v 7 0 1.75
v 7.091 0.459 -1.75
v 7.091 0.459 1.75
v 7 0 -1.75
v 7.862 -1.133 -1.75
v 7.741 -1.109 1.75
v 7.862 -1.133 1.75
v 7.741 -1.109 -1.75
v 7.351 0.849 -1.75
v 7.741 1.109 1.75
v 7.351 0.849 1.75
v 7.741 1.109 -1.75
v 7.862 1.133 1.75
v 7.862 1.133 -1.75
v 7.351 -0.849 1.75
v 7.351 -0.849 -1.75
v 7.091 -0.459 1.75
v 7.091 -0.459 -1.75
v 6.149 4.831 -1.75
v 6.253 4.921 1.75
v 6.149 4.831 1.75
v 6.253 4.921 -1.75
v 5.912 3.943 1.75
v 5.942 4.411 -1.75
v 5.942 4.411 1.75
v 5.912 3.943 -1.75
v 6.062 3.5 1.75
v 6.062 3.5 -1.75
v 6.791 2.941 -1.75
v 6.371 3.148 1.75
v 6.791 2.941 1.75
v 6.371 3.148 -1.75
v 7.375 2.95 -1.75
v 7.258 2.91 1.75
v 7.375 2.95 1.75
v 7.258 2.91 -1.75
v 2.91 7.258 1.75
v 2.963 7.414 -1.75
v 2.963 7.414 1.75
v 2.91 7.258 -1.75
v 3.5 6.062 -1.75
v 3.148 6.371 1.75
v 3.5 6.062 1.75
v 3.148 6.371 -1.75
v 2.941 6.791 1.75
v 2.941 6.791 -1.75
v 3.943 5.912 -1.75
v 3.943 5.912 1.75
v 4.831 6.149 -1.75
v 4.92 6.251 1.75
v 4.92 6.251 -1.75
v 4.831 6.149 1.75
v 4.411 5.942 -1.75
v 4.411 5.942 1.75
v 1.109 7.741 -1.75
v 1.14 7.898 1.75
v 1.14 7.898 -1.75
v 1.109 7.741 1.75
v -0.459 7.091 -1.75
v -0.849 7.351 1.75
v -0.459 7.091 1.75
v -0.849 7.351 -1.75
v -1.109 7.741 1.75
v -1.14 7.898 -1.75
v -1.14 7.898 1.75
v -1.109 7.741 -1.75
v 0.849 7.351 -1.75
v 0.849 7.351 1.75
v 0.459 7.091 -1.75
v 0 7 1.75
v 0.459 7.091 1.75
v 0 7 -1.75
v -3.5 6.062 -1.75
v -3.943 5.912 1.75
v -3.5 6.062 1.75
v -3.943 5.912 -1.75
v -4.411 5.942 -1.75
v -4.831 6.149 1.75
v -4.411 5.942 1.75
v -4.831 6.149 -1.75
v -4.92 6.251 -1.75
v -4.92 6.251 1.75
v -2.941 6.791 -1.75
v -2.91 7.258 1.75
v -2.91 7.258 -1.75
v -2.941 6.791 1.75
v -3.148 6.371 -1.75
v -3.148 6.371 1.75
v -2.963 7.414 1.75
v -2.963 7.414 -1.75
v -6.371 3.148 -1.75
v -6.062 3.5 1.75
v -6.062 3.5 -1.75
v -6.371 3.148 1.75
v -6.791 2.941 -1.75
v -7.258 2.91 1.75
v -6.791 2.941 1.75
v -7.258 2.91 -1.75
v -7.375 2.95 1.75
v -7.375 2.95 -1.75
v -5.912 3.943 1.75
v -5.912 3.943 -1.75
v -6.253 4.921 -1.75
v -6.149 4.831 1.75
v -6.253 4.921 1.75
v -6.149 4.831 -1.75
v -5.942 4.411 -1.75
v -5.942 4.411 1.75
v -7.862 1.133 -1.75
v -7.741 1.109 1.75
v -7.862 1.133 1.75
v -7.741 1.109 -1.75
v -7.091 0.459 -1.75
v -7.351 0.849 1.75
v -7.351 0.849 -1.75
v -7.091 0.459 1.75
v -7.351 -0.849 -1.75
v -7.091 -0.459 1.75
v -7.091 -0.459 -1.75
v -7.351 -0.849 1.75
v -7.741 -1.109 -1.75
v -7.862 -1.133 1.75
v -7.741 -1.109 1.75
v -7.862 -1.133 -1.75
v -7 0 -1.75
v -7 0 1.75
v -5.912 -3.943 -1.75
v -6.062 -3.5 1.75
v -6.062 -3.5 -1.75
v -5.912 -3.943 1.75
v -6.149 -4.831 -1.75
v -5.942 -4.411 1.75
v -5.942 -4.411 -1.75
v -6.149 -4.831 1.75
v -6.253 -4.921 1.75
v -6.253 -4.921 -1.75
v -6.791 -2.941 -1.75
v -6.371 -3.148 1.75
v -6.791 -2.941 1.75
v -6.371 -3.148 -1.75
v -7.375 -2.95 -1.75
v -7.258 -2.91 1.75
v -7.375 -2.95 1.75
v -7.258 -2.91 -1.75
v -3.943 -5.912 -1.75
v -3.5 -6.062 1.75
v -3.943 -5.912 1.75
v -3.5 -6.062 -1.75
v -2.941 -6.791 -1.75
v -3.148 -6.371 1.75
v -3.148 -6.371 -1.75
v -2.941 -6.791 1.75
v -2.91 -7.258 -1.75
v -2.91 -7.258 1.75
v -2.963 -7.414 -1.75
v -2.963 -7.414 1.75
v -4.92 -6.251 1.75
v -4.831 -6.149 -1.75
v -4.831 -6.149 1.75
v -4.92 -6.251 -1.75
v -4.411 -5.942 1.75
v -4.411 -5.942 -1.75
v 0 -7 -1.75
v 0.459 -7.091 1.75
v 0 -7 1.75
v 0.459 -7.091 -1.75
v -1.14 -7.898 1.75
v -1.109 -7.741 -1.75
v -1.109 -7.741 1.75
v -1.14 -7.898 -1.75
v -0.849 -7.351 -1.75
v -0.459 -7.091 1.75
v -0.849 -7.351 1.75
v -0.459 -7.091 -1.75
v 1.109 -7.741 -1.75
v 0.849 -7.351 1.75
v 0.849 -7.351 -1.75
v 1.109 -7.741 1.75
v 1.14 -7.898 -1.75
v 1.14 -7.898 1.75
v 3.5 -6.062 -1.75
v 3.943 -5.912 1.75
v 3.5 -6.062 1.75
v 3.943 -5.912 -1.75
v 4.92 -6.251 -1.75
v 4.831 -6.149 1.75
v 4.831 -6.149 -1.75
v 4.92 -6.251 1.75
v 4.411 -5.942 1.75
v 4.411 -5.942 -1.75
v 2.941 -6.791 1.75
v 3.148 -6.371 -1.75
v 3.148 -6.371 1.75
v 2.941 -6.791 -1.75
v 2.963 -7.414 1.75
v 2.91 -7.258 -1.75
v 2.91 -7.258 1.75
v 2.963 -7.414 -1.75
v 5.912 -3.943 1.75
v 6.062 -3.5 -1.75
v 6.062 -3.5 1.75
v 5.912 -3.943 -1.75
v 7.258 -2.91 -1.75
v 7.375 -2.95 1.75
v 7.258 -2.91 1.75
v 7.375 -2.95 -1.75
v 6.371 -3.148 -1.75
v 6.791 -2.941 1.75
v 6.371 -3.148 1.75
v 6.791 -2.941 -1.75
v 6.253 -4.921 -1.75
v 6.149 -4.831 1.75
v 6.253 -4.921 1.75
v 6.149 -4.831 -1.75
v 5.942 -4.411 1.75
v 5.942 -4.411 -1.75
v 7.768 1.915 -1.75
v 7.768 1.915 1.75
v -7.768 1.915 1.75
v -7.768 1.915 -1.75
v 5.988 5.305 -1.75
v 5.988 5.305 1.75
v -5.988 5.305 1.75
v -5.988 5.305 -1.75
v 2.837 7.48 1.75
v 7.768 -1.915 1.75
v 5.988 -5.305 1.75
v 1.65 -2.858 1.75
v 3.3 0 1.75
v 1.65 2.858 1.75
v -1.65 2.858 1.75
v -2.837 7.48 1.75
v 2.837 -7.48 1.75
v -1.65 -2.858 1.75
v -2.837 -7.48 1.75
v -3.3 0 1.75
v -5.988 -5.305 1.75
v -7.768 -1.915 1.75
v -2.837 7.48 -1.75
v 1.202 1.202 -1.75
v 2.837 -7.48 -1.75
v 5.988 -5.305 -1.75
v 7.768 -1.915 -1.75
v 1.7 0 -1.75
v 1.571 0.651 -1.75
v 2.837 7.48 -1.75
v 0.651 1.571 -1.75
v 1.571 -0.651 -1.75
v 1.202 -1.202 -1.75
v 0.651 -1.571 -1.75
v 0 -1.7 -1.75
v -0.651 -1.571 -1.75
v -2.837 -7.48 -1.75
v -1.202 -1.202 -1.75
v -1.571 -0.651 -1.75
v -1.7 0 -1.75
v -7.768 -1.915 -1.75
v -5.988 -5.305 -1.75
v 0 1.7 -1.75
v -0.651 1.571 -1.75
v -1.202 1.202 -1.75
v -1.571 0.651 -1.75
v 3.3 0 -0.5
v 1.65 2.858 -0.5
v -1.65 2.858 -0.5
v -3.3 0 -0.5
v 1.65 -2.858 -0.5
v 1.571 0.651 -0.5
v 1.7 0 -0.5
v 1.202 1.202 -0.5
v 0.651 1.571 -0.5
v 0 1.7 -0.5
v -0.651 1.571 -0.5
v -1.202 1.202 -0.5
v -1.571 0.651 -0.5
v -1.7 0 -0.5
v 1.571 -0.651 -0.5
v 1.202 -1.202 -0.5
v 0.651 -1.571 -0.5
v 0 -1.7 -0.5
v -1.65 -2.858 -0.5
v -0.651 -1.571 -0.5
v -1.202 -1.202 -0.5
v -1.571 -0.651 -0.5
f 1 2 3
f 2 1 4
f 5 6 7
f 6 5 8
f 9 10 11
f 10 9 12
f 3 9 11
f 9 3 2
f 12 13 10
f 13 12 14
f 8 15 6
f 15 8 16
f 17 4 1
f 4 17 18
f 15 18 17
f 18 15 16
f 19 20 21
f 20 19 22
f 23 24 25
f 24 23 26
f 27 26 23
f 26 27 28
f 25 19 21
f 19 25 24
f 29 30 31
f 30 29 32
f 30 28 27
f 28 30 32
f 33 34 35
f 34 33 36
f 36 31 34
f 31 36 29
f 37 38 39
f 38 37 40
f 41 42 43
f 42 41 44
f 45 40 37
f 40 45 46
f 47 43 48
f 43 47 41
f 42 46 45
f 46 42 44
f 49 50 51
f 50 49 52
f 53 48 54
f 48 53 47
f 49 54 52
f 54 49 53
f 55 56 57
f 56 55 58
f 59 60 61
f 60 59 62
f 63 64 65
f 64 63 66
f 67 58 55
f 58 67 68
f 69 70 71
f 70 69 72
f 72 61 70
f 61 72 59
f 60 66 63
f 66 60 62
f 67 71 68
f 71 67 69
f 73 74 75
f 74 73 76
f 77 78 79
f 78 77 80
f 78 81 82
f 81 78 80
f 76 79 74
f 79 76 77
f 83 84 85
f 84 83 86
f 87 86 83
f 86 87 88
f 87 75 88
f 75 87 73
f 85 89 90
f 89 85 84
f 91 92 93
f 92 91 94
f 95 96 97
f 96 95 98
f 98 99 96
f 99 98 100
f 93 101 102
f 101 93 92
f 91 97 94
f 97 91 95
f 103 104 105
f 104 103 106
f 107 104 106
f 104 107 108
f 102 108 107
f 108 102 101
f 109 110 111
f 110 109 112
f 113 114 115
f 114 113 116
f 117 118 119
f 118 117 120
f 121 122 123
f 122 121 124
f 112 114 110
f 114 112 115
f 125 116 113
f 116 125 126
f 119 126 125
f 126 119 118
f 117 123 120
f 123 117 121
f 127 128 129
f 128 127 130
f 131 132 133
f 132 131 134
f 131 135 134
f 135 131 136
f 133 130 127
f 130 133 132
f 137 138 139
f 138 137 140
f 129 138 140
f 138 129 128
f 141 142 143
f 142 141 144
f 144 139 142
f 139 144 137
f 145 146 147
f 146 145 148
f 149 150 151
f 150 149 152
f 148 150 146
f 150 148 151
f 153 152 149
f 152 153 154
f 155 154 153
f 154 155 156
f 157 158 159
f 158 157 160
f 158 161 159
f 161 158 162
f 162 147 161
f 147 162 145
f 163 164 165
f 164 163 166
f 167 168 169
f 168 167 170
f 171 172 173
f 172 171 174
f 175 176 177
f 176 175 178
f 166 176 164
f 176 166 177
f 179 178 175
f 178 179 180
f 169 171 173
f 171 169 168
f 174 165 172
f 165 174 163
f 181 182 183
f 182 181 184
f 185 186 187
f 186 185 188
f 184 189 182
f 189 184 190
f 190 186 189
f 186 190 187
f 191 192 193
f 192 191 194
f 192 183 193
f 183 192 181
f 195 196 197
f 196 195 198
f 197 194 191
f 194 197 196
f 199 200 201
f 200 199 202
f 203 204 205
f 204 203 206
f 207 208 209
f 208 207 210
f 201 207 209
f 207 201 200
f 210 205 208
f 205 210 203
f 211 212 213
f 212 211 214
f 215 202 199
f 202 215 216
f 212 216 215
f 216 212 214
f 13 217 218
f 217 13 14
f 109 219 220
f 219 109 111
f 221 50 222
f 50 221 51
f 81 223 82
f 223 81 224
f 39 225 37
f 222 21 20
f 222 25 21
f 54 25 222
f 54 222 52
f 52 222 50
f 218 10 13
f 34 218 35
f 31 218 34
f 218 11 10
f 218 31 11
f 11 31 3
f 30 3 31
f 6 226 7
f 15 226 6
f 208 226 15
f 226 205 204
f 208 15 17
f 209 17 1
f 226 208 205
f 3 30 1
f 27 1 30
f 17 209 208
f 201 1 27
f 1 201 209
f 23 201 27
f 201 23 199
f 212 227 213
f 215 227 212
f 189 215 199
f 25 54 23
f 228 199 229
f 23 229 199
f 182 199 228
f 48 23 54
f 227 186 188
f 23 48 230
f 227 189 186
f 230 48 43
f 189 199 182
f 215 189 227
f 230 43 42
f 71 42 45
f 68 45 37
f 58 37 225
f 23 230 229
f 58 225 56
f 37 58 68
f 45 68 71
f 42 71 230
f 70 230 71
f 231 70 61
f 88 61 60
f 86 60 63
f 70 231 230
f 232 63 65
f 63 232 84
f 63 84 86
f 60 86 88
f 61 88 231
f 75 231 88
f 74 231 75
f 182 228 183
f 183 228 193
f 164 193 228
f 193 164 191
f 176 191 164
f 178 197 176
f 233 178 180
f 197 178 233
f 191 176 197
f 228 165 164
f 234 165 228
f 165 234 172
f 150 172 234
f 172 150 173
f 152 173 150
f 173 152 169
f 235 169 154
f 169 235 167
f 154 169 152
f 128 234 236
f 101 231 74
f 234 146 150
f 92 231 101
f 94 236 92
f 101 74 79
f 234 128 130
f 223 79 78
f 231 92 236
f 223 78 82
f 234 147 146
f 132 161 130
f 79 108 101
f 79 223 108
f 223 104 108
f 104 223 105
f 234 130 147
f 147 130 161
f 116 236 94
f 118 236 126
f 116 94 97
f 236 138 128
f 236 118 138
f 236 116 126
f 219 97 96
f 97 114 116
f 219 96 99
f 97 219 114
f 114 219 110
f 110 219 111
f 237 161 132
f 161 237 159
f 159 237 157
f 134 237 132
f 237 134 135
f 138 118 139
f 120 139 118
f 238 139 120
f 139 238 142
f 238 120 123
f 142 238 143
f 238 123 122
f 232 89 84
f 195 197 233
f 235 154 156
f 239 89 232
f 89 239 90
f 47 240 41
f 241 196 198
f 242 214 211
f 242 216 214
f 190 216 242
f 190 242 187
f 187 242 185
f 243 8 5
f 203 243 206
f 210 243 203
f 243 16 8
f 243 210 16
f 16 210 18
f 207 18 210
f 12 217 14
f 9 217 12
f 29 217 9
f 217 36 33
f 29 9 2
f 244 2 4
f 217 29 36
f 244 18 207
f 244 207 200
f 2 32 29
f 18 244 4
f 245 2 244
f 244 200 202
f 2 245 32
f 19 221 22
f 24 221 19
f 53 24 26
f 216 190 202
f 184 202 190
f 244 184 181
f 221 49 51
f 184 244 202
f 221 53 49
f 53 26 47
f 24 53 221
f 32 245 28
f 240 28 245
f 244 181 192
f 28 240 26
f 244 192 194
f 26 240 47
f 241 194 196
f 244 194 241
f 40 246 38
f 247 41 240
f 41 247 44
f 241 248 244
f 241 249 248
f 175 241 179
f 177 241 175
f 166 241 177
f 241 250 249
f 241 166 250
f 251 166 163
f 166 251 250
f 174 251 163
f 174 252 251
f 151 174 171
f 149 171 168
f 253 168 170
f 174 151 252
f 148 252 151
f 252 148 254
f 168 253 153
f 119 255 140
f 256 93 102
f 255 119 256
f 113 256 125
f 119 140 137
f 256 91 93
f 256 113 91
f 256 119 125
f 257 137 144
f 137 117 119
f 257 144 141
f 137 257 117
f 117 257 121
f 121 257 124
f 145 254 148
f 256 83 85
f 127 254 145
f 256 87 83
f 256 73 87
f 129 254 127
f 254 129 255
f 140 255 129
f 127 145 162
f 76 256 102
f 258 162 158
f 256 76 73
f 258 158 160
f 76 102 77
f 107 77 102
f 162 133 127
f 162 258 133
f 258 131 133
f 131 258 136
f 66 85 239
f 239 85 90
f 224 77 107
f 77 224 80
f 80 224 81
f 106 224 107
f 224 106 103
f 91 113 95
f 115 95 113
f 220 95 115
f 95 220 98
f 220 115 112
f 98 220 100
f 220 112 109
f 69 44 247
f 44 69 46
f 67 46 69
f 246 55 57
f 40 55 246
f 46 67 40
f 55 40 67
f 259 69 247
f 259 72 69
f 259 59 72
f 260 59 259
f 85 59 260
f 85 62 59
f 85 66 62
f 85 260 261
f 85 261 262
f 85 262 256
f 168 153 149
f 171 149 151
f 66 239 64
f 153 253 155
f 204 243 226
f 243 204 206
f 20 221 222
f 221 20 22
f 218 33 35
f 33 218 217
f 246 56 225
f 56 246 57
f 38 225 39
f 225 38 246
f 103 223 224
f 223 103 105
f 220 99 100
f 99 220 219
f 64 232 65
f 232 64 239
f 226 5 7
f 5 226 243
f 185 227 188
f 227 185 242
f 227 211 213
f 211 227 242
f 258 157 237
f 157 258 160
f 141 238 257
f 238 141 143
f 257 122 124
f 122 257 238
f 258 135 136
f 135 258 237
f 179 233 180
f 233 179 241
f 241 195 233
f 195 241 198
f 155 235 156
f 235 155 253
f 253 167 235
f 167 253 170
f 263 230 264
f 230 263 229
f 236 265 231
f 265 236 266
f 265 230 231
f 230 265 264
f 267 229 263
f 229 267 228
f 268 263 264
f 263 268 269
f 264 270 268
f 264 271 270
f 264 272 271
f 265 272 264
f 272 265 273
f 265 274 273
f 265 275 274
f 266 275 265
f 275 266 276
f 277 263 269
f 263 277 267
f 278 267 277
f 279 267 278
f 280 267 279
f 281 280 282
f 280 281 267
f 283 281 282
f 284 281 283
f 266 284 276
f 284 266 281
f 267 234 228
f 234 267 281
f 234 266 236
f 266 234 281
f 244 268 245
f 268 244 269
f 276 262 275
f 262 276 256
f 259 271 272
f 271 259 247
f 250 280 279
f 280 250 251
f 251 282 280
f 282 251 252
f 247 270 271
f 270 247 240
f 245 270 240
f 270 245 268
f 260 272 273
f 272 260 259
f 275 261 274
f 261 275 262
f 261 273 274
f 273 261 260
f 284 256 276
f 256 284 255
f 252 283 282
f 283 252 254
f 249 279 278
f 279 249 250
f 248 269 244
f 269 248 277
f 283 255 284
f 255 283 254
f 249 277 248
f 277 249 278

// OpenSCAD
// file: ../configuration.scad
/*
	Konfiguracni soubor 3D tiskarny RebeliX X2
	
	Sledujte nas na:		  
			www.RepRap4U.cz
			www.facebook.com/RebeliX.cz
			https://twitter.com/reprap4u
			https://plus.google.com/+Reprap4uCz-3Dtiskarna-RebeliX
*/

/*================ Slic3r nastaveni ==========================*/

// Vyska vrstvy pro tisknuti dilu [mm]
layer_height = 0.3;

// Sirka vytlacovaneho materialu [mm]
extrusion_width = 0.66; //Slic3r->Print Settings->Advanced->Default extrusion width

/*==================== M6 sroub ==============================*/

// Rezerva prumeru hlavy sroubu [mm]
space = 1;

// Prumer hlavy M6 sroubu (pricte se rezerva) [mm]
M6_head_diameter = 10.6+space;
//M6_head_diameter = 12+space;

// Vyska hlavy M6 sroubu (dulezite pro zapusteni hlavy sroubu do plastu) [mm]
M6_head_height = 3.6;
//M6_head_height = 4.5;

// Delka sroubu M6 [mm]
// M6x12
M6_lenght = 12;

/*=================== Nastaveni dilu =========================*/

// Posun Z zakladny
z_base_offset = 11;

// Tloustka rohovych spojek
// 5 mm => sroub M6x14 s podlozkou
// 3 mm => sroub M6x12 s podlozkou
coupler_thickness = 5;

// Prumer 8mm tyce
rod_8mm_d = 8.2;

// Posun drzacku mezi x-motor a x-end
x_holder_position = 6.5;

/*======================== Motory ============================*/

// Delka motoru (ovlivni dily a delky tyci pro osy Z a Y)
//SX17-1003LQFE (doporuceno hlavne na osu Z)
motor_length = 29.5;
//SX17-1003 (doporuceno hlavne na osu Z), SX17-0503LQEF
//motor_length = 34;
//SX17-1005
//motor_length = 40;
//SX17-0905 - zde je jiz problem s velkou vyskou motoru na ose Z - musi se upravit endstop-holder
//motor_length = 48;

/*================ Remeny a remenicky ========================*/

// GT2 
belt_tooth_distance = 2;
belt_tooth_ratio = 0.5;

// T2.5
//belt_tooth_distance = 2.5;
//belt_tooth_ratio = 0.68;
// main file
// RebeliX
//
// heatbed-nut
// GNU GPL v3
// Martin Neruda <neruda@reprap4u.cz>
// http://www.reprap4u.cz

include <../configuration.scad>

// Prumer celeho drzadla
diameter = 16;
// Prumer zoubku na kole
tooth_diameter = 2.4;

difference(){
	cylinder(r=diameter/2,h=3.5, center=true);
	for ( i = [0 : 30 : 360] ){
	  rotate([0,0,i]){
		translate([diameter/2 + 0.2,0,0]) cylinder(r=tooth_diameter/2,h=6, $fn=16,center=true);
	  }
	}
	translate([0,0,-0.5]) cylinder(r=3.3,h=2.4,$fn=6);
	translate([0,0,0]) cylinder(r=1.7,h=10,$fn=16, center=true);
}	
